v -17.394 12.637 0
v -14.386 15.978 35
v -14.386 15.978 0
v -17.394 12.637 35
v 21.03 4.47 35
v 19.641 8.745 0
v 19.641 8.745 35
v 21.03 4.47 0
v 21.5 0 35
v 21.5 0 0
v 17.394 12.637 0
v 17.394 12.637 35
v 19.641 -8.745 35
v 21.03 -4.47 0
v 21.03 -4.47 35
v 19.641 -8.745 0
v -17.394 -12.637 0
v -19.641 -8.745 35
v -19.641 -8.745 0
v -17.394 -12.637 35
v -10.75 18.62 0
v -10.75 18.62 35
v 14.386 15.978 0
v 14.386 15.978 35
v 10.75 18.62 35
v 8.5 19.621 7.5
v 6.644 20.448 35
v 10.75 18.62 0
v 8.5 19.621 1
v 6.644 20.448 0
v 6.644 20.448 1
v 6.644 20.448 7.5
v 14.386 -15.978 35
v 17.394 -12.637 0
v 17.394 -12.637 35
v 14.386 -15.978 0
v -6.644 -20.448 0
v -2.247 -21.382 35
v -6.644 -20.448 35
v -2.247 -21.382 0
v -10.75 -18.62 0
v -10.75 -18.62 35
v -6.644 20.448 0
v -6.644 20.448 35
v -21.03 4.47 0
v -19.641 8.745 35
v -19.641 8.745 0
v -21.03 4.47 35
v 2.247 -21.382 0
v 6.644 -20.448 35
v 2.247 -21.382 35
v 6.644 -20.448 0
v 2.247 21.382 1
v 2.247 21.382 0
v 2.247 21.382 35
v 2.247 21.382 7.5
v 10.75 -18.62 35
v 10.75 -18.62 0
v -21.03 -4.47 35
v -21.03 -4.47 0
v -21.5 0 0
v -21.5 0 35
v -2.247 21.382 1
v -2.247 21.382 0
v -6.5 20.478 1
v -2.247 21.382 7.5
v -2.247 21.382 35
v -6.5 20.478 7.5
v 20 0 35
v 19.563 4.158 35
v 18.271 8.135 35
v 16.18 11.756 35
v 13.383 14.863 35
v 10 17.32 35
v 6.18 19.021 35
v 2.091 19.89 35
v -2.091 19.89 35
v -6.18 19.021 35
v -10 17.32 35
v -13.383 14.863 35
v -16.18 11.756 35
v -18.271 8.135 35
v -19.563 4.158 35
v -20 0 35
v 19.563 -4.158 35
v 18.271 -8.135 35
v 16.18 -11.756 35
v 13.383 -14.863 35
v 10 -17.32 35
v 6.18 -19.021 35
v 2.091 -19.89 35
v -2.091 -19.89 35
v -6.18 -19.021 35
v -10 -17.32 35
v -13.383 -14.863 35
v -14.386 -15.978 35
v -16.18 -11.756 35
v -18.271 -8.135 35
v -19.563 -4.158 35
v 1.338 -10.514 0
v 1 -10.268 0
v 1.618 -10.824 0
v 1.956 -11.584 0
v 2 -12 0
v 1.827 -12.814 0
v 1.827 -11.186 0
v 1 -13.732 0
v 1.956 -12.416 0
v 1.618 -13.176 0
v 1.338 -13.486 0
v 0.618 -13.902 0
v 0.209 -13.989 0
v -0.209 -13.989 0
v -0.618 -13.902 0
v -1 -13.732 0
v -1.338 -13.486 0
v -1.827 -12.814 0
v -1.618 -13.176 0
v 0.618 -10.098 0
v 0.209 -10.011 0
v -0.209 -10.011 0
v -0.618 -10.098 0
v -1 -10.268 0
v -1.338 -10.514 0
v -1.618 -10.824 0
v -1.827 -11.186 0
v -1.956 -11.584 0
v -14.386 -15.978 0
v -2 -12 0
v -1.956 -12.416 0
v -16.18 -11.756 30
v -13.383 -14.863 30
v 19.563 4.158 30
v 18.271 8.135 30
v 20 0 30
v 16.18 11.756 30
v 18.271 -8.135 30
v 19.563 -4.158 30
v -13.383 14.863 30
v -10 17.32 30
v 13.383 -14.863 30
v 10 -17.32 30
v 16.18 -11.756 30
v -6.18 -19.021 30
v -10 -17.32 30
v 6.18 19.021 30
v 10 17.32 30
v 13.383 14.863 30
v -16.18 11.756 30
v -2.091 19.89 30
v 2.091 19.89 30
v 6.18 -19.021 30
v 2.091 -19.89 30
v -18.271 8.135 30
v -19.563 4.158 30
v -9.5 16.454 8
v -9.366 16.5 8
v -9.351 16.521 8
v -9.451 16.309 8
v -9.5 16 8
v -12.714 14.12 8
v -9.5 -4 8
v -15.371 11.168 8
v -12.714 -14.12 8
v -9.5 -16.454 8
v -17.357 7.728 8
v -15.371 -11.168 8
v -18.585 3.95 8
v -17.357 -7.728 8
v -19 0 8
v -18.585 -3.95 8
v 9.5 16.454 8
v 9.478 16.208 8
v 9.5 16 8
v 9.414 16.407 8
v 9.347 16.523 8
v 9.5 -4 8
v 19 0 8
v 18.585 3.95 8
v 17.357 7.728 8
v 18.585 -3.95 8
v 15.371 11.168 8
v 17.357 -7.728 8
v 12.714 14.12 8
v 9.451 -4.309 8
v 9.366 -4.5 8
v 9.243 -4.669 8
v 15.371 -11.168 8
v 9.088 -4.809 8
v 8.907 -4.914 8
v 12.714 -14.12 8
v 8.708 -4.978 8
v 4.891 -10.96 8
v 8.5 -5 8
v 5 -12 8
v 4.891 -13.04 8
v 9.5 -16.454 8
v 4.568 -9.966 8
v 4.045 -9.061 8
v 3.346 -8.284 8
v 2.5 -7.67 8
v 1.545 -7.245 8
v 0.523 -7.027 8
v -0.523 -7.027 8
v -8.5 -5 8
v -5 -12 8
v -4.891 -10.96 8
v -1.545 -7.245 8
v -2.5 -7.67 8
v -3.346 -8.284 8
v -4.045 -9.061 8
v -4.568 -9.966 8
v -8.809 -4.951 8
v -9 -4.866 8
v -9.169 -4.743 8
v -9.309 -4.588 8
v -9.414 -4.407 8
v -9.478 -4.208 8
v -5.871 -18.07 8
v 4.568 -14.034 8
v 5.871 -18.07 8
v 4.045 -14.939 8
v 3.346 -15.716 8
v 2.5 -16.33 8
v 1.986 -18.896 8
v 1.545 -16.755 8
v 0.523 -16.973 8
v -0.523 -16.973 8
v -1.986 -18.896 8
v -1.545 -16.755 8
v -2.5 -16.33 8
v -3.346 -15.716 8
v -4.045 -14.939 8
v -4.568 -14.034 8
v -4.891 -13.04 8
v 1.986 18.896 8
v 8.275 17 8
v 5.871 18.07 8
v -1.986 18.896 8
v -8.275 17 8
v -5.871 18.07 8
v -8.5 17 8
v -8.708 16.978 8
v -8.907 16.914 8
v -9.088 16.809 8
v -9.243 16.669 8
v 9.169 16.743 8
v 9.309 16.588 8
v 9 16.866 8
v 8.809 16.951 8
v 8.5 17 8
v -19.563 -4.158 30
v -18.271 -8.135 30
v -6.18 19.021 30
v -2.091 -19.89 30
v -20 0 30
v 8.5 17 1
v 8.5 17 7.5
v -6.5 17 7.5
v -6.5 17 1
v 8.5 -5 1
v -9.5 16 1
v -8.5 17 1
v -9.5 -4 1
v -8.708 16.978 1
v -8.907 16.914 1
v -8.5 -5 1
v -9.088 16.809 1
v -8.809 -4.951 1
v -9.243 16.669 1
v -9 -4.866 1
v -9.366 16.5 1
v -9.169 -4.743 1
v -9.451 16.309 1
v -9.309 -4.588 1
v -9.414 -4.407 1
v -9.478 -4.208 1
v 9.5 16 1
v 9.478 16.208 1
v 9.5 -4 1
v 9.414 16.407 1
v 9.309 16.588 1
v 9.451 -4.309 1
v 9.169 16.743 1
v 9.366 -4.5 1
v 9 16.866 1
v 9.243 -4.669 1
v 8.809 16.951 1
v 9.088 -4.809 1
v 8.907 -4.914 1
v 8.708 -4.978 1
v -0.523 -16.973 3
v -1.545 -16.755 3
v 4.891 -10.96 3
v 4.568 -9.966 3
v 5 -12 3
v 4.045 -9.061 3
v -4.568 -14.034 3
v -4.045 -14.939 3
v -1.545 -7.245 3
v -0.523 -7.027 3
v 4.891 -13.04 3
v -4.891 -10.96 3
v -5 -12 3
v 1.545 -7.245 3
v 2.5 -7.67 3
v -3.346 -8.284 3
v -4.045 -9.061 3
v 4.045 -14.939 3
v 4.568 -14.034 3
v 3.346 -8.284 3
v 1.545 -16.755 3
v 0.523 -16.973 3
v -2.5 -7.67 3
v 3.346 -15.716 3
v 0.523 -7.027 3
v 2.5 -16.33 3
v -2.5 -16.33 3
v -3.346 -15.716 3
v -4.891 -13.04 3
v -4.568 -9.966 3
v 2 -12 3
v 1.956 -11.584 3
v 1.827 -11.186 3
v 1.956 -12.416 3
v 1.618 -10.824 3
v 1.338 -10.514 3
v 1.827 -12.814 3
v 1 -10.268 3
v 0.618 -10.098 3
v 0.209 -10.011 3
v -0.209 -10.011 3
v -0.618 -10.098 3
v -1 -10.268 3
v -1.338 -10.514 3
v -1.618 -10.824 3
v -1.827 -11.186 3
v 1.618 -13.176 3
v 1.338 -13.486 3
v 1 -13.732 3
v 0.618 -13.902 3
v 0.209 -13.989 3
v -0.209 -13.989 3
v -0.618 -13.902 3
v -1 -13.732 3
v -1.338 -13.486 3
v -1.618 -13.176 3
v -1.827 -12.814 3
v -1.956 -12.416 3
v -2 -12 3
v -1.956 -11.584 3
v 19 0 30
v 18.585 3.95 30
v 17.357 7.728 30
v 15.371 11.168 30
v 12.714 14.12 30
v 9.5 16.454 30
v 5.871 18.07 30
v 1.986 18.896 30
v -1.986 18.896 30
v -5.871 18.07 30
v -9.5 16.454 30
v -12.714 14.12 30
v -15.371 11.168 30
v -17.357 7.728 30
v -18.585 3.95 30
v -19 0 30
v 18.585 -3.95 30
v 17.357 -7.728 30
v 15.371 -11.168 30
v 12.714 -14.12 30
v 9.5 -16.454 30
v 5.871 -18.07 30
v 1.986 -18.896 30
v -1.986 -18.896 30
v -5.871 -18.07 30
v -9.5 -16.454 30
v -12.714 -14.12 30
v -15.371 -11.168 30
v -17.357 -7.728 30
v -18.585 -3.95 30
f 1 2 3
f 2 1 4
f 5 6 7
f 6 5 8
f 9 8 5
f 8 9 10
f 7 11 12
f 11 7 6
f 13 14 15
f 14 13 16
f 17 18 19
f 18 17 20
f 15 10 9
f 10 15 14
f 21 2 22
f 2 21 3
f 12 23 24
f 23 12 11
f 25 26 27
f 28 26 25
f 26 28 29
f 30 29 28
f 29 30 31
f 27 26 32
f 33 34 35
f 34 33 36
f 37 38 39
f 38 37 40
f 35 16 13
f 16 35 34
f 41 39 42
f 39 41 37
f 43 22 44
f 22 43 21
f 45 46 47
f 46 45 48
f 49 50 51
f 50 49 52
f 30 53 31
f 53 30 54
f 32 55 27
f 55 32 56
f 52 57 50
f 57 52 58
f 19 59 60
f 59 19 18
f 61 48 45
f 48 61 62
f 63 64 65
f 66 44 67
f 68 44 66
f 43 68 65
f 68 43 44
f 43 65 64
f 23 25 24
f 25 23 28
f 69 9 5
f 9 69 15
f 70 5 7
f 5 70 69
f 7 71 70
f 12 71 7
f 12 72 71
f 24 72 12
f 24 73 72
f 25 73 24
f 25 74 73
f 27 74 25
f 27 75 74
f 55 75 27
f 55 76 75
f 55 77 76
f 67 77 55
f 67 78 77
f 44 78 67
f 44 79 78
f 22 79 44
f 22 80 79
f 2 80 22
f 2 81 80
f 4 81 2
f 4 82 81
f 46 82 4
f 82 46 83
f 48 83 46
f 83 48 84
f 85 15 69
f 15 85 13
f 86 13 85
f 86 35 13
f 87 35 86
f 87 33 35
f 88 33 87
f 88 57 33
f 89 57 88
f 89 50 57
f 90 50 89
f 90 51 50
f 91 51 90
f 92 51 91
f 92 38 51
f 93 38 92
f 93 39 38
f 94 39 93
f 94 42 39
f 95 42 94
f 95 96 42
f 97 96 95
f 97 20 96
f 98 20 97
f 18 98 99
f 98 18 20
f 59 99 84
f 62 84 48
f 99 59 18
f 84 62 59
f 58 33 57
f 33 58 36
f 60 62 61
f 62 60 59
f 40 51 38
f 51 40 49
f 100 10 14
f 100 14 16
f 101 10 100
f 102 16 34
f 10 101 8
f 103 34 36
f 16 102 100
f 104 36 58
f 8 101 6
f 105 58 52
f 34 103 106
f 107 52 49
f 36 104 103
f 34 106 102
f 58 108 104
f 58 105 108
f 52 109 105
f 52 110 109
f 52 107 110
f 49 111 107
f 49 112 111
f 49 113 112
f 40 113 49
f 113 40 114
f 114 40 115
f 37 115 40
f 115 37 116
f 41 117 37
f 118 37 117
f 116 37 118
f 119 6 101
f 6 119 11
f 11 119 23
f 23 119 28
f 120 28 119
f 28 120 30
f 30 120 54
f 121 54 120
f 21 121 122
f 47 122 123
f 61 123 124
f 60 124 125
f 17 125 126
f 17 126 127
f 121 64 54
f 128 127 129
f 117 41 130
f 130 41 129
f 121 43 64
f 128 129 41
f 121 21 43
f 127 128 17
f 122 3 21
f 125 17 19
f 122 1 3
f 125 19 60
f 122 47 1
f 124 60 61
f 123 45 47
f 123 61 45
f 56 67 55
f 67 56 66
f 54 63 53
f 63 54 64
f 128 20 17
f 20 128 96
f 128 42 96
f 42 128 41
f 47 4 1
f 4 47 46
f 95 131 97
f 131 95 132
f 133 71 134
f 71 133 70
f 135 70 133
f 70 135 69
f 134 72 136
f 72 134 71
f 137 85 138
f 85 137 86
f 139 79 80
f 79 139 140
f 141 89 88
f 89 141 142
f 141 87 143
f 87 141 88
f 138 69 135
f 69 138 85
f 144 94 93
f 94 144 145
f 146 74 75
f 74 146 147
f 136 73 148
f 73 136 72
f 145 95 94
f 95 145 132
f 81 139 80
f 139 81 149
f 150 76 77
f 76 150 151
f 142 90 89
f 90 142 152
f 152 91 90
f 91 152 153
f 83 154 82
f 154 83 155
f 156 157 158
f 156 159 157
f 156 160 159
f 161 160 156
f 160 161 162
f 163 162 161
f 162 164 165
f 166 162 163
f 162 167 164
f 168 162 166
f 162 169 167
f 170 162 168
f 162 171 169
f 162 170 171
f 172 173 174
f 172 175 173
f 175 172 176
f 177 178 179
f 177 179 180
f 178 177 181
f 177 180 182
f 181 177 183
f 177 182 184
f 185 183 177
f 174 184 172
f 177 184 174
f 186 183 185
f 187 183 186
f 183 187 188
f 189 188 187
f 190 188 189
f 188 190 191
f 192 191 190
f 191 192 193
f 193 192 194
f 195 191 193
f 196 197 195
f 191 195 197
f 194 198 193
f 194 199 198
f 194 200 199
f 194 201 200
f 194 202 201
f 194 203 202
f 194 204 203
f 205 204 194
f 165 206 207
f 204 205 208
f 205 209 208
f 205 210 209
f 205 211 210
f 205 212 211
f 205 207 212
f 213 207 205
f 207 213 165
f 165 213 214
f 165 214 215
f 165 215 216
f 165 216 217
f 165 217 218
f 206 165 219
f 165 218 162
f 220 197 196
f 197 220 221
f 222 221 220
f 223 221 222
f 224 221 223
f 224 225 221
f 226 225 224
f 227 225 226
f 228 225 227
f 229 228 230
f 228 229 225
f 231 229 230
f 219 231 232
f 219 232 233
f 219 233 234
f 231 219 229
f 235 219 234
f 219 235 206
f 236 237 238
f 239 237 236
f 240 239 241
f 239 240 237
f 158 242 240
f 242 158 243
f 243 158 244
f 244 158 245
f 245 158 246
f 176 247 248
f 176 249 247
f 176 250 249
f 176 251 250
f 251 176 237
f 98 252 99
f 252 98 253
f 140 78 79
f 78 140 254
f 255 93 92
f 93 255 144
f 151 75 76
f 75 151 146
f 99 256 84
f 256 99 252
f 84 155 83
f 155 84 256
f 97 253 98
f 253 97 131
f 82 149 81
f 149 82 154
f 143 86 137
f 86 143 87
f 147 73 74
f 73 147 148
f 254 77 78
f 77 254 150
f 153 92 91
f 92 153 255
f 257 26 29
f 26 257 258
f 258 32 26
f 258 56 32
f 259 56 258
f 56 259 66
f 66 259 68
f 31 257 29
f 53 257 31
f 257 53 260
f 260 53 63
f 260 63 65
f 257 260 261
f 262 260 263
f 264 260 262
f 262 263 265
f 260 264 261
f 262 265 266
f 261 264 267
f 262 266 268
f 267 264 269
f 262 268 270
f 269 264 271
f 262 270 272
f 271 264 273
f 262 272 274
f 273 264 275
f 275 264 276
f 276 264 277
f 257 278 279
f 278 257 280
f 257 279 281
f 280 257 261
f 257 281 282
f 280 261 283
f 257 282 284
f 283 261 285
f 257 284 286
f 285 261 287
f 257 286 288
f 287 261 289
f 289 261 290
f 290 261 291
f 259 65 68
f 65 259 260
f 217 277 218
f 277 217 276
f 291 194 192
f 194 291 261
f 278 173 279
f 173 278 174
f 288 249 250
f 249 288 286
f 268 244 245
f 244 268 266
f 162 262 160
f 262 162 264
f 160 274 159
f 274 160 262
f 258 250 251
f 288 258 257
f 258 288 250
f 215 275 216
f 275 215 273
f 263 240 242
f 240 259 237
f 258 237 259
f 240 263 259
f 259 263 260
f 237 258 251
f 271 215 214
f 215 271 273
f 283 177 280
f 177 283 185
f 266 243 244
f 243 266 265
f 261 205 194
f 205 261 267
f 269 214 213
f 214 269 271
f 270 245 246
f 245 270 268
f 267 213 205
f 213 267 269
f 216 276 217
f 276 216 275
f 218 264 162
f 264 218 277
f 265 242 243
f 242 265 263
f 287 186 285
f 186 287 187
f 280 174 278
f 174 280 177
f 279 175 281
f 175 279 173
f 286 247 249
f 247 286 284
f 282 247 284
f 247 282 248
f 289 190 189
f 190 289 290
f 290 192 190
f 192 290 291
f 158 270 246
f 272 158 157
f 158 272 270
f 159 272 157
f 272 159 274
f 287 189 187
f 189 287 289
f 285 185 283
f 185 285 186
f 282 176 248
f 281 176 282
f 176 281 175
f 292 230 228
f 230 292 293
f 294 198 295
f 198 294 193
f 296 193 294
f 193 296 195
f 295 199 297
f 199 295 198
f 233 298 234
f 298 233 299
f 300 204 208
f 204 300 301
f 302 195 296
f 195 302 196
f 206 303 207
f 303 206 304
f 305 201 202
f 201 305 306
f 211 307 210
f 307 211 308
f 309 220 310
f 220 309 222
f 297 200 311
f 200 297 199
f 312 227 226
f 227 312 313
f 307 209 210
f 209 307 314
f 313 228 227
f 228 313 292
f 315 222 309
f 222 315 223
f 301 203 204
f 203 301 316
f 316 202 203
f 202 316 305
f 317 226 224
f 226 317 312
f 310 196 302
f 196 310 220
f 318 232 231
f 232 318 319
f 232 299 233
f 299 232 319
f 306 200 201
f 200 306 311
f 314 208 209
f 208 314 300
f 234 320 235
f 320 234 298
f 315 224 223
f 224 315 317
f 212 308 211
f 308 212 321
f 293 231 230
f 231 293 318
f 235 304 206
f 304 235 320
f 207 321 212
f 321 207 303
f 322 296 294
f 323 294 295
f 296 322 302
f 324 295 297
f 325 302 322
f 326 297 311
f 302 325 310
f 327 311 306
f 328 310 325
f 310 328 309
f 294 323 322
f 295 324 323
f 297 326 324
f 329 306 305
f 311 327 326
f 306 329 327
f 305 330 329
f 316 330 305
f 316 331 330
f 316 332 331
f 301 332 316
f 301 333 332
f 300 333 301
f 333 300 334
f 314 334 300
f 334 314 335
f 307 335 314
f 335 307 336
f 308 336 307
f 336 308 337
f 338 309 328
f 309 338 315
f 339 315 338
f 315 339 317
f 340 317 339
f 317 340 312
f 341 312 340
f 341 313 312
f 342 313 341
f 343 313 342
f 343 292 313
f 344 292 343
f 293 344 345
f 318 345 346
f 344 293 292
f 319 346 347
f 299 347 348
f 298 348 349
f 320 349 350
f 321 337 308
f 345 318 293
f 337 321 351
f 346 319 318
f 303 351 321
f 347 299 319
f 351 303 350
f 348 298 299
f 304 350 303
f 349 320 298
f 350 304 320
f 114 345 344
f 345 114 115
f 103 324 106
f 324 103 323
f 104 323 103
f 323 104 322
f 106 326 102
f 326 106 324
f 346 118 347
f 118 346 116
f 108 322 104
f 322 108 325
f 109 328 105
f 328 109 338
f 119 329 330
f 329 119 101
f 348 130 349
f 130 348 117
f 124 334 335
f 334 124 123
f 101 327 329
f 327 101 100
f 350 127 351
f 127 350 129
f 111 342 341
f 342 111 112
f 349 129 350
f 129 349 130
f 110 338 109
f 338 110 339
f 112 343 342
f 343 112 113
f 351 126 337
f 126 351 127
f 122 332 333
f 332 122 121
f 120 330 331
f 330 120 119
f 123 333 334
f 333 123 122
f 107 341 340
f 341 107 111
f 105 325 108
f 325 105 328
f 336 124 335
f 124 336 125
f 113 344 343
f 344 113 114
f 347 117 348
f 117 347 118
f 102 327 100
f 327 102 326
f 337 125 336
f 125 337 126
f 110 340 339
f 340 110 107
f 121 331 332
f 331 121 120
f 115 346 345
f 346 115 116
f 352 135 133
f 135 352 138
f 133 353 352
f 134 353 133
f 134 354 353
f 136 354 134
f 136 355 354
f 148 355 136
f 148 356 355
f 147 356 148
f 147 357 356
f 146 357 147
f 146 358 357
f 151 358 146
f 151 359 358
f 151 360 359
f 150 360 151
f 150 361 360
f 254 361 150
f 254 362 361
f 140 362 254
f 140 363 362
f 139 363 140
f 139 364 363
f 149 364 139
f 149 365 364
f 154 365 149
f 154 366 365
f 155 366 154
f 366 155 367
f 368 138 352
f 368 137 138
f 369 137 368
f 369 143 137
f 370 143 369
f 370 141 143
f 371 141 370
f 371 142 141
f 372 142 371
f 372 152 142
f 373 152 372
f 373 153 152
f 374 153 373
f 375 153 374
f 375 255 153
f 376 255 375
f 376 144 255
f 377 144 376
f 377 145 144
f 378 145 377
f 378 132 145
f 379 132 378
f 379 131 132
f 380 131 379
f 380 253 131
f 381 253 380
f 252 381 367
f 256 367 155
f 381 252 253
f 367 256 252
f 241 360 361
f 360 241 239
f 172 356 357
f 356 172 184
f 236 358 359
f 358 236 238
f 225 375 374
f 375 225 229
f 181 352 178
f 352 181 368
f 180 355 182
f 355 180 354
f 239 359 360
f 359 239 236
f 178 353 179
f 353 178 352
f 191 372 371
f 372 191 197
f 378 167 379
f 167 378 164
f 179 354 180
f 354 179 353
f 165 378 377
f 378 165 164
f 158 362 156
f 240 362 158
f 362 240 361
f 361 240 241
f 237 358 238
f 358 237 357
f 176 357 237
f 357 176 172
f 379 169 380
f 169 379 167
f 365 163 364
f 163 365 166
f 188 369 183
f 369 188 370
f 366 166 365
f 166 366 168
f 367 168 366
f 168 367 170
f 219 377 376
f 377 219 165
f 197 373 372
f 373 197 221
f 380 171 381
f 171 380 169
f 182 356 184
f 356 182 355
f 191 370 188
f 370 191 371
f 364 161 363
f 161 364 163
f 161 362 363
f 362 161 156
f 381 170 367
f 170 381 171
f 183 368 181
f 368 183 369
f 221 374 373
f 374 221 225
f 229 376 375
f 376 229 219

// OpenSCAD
// file: fillets/fillets2d.scad
/*
Modified by Kevin Gravier
https://www.thingiverse.com/mrkmg/about

Originally from: https://github.com/OskarLinde/scad-utils/blob/master/morphology.scad



Modules:

rounding2d(r)
r = radius of rounding

fillet2d(r)
r = radius of rounding

*/

$fa = 0.1;
$fs = 0.1;

// Example
linear_extrude(1)
rounding2d(1)
fillet2d(1)
difference() {
    union() {
        square([10, 10], center = true);
        translate([5, 5])
        square([10, 10], center = true);
    }
    
    translate([-5, -5])
    square([10, 10], center = true);
    
    translate([8, 8])
    circle(3);
}

// Example, text
translate([-20, -15])
rotate([0, 0, 0])
linear_extrude(1)
rounding2d(.25)
fillet2d(.25)
text("Fillets!");

module fillet2d(r) {
    offset(r = -r) offset(delta = r) children(0);
}

module rounding2d(r) {
    offset(r = r) offset(delta = -r) children(0);
}
// main file
use <fillets/fillets2d.scad>

$fn=30;

hO=30;

dO=43;
rO=dO/2;

dM=40;
rM=dM/2;

height=35;
bottom_height=12;

union() {
    
    difference() {
        color([0,1,0])
        cylinder(height, rO, rO);
        
        color([1,0,1])
        translate([0, 0, 8])
        cylinder(height, rM, rM);
        
        translate([
            -6.5,
            15,
            1
        ])
        cube([
            15,
            12,
            6.5
        ]);
        
        color([0.2, 0.1, 0.3])
        translate([0,6,1])
        linear_extrude(25.1)
        rounding2d(1)
        fillet2d(4)
        square([19, 22], center = true);
        
        translate([0,-12,3])
        cylinder(20, 5, 5);
        
        translate([0,-12,-3])
        cylinder(20, 2, 2);
        
    }
    translate([0, 0, 8])
    difference() {
        
        cylinder(height-8-5, rO-1, rO-1);
        translate([0, 0, -2])
        cylinder(height, rO-2.5, rO-2.5);
    }
}
